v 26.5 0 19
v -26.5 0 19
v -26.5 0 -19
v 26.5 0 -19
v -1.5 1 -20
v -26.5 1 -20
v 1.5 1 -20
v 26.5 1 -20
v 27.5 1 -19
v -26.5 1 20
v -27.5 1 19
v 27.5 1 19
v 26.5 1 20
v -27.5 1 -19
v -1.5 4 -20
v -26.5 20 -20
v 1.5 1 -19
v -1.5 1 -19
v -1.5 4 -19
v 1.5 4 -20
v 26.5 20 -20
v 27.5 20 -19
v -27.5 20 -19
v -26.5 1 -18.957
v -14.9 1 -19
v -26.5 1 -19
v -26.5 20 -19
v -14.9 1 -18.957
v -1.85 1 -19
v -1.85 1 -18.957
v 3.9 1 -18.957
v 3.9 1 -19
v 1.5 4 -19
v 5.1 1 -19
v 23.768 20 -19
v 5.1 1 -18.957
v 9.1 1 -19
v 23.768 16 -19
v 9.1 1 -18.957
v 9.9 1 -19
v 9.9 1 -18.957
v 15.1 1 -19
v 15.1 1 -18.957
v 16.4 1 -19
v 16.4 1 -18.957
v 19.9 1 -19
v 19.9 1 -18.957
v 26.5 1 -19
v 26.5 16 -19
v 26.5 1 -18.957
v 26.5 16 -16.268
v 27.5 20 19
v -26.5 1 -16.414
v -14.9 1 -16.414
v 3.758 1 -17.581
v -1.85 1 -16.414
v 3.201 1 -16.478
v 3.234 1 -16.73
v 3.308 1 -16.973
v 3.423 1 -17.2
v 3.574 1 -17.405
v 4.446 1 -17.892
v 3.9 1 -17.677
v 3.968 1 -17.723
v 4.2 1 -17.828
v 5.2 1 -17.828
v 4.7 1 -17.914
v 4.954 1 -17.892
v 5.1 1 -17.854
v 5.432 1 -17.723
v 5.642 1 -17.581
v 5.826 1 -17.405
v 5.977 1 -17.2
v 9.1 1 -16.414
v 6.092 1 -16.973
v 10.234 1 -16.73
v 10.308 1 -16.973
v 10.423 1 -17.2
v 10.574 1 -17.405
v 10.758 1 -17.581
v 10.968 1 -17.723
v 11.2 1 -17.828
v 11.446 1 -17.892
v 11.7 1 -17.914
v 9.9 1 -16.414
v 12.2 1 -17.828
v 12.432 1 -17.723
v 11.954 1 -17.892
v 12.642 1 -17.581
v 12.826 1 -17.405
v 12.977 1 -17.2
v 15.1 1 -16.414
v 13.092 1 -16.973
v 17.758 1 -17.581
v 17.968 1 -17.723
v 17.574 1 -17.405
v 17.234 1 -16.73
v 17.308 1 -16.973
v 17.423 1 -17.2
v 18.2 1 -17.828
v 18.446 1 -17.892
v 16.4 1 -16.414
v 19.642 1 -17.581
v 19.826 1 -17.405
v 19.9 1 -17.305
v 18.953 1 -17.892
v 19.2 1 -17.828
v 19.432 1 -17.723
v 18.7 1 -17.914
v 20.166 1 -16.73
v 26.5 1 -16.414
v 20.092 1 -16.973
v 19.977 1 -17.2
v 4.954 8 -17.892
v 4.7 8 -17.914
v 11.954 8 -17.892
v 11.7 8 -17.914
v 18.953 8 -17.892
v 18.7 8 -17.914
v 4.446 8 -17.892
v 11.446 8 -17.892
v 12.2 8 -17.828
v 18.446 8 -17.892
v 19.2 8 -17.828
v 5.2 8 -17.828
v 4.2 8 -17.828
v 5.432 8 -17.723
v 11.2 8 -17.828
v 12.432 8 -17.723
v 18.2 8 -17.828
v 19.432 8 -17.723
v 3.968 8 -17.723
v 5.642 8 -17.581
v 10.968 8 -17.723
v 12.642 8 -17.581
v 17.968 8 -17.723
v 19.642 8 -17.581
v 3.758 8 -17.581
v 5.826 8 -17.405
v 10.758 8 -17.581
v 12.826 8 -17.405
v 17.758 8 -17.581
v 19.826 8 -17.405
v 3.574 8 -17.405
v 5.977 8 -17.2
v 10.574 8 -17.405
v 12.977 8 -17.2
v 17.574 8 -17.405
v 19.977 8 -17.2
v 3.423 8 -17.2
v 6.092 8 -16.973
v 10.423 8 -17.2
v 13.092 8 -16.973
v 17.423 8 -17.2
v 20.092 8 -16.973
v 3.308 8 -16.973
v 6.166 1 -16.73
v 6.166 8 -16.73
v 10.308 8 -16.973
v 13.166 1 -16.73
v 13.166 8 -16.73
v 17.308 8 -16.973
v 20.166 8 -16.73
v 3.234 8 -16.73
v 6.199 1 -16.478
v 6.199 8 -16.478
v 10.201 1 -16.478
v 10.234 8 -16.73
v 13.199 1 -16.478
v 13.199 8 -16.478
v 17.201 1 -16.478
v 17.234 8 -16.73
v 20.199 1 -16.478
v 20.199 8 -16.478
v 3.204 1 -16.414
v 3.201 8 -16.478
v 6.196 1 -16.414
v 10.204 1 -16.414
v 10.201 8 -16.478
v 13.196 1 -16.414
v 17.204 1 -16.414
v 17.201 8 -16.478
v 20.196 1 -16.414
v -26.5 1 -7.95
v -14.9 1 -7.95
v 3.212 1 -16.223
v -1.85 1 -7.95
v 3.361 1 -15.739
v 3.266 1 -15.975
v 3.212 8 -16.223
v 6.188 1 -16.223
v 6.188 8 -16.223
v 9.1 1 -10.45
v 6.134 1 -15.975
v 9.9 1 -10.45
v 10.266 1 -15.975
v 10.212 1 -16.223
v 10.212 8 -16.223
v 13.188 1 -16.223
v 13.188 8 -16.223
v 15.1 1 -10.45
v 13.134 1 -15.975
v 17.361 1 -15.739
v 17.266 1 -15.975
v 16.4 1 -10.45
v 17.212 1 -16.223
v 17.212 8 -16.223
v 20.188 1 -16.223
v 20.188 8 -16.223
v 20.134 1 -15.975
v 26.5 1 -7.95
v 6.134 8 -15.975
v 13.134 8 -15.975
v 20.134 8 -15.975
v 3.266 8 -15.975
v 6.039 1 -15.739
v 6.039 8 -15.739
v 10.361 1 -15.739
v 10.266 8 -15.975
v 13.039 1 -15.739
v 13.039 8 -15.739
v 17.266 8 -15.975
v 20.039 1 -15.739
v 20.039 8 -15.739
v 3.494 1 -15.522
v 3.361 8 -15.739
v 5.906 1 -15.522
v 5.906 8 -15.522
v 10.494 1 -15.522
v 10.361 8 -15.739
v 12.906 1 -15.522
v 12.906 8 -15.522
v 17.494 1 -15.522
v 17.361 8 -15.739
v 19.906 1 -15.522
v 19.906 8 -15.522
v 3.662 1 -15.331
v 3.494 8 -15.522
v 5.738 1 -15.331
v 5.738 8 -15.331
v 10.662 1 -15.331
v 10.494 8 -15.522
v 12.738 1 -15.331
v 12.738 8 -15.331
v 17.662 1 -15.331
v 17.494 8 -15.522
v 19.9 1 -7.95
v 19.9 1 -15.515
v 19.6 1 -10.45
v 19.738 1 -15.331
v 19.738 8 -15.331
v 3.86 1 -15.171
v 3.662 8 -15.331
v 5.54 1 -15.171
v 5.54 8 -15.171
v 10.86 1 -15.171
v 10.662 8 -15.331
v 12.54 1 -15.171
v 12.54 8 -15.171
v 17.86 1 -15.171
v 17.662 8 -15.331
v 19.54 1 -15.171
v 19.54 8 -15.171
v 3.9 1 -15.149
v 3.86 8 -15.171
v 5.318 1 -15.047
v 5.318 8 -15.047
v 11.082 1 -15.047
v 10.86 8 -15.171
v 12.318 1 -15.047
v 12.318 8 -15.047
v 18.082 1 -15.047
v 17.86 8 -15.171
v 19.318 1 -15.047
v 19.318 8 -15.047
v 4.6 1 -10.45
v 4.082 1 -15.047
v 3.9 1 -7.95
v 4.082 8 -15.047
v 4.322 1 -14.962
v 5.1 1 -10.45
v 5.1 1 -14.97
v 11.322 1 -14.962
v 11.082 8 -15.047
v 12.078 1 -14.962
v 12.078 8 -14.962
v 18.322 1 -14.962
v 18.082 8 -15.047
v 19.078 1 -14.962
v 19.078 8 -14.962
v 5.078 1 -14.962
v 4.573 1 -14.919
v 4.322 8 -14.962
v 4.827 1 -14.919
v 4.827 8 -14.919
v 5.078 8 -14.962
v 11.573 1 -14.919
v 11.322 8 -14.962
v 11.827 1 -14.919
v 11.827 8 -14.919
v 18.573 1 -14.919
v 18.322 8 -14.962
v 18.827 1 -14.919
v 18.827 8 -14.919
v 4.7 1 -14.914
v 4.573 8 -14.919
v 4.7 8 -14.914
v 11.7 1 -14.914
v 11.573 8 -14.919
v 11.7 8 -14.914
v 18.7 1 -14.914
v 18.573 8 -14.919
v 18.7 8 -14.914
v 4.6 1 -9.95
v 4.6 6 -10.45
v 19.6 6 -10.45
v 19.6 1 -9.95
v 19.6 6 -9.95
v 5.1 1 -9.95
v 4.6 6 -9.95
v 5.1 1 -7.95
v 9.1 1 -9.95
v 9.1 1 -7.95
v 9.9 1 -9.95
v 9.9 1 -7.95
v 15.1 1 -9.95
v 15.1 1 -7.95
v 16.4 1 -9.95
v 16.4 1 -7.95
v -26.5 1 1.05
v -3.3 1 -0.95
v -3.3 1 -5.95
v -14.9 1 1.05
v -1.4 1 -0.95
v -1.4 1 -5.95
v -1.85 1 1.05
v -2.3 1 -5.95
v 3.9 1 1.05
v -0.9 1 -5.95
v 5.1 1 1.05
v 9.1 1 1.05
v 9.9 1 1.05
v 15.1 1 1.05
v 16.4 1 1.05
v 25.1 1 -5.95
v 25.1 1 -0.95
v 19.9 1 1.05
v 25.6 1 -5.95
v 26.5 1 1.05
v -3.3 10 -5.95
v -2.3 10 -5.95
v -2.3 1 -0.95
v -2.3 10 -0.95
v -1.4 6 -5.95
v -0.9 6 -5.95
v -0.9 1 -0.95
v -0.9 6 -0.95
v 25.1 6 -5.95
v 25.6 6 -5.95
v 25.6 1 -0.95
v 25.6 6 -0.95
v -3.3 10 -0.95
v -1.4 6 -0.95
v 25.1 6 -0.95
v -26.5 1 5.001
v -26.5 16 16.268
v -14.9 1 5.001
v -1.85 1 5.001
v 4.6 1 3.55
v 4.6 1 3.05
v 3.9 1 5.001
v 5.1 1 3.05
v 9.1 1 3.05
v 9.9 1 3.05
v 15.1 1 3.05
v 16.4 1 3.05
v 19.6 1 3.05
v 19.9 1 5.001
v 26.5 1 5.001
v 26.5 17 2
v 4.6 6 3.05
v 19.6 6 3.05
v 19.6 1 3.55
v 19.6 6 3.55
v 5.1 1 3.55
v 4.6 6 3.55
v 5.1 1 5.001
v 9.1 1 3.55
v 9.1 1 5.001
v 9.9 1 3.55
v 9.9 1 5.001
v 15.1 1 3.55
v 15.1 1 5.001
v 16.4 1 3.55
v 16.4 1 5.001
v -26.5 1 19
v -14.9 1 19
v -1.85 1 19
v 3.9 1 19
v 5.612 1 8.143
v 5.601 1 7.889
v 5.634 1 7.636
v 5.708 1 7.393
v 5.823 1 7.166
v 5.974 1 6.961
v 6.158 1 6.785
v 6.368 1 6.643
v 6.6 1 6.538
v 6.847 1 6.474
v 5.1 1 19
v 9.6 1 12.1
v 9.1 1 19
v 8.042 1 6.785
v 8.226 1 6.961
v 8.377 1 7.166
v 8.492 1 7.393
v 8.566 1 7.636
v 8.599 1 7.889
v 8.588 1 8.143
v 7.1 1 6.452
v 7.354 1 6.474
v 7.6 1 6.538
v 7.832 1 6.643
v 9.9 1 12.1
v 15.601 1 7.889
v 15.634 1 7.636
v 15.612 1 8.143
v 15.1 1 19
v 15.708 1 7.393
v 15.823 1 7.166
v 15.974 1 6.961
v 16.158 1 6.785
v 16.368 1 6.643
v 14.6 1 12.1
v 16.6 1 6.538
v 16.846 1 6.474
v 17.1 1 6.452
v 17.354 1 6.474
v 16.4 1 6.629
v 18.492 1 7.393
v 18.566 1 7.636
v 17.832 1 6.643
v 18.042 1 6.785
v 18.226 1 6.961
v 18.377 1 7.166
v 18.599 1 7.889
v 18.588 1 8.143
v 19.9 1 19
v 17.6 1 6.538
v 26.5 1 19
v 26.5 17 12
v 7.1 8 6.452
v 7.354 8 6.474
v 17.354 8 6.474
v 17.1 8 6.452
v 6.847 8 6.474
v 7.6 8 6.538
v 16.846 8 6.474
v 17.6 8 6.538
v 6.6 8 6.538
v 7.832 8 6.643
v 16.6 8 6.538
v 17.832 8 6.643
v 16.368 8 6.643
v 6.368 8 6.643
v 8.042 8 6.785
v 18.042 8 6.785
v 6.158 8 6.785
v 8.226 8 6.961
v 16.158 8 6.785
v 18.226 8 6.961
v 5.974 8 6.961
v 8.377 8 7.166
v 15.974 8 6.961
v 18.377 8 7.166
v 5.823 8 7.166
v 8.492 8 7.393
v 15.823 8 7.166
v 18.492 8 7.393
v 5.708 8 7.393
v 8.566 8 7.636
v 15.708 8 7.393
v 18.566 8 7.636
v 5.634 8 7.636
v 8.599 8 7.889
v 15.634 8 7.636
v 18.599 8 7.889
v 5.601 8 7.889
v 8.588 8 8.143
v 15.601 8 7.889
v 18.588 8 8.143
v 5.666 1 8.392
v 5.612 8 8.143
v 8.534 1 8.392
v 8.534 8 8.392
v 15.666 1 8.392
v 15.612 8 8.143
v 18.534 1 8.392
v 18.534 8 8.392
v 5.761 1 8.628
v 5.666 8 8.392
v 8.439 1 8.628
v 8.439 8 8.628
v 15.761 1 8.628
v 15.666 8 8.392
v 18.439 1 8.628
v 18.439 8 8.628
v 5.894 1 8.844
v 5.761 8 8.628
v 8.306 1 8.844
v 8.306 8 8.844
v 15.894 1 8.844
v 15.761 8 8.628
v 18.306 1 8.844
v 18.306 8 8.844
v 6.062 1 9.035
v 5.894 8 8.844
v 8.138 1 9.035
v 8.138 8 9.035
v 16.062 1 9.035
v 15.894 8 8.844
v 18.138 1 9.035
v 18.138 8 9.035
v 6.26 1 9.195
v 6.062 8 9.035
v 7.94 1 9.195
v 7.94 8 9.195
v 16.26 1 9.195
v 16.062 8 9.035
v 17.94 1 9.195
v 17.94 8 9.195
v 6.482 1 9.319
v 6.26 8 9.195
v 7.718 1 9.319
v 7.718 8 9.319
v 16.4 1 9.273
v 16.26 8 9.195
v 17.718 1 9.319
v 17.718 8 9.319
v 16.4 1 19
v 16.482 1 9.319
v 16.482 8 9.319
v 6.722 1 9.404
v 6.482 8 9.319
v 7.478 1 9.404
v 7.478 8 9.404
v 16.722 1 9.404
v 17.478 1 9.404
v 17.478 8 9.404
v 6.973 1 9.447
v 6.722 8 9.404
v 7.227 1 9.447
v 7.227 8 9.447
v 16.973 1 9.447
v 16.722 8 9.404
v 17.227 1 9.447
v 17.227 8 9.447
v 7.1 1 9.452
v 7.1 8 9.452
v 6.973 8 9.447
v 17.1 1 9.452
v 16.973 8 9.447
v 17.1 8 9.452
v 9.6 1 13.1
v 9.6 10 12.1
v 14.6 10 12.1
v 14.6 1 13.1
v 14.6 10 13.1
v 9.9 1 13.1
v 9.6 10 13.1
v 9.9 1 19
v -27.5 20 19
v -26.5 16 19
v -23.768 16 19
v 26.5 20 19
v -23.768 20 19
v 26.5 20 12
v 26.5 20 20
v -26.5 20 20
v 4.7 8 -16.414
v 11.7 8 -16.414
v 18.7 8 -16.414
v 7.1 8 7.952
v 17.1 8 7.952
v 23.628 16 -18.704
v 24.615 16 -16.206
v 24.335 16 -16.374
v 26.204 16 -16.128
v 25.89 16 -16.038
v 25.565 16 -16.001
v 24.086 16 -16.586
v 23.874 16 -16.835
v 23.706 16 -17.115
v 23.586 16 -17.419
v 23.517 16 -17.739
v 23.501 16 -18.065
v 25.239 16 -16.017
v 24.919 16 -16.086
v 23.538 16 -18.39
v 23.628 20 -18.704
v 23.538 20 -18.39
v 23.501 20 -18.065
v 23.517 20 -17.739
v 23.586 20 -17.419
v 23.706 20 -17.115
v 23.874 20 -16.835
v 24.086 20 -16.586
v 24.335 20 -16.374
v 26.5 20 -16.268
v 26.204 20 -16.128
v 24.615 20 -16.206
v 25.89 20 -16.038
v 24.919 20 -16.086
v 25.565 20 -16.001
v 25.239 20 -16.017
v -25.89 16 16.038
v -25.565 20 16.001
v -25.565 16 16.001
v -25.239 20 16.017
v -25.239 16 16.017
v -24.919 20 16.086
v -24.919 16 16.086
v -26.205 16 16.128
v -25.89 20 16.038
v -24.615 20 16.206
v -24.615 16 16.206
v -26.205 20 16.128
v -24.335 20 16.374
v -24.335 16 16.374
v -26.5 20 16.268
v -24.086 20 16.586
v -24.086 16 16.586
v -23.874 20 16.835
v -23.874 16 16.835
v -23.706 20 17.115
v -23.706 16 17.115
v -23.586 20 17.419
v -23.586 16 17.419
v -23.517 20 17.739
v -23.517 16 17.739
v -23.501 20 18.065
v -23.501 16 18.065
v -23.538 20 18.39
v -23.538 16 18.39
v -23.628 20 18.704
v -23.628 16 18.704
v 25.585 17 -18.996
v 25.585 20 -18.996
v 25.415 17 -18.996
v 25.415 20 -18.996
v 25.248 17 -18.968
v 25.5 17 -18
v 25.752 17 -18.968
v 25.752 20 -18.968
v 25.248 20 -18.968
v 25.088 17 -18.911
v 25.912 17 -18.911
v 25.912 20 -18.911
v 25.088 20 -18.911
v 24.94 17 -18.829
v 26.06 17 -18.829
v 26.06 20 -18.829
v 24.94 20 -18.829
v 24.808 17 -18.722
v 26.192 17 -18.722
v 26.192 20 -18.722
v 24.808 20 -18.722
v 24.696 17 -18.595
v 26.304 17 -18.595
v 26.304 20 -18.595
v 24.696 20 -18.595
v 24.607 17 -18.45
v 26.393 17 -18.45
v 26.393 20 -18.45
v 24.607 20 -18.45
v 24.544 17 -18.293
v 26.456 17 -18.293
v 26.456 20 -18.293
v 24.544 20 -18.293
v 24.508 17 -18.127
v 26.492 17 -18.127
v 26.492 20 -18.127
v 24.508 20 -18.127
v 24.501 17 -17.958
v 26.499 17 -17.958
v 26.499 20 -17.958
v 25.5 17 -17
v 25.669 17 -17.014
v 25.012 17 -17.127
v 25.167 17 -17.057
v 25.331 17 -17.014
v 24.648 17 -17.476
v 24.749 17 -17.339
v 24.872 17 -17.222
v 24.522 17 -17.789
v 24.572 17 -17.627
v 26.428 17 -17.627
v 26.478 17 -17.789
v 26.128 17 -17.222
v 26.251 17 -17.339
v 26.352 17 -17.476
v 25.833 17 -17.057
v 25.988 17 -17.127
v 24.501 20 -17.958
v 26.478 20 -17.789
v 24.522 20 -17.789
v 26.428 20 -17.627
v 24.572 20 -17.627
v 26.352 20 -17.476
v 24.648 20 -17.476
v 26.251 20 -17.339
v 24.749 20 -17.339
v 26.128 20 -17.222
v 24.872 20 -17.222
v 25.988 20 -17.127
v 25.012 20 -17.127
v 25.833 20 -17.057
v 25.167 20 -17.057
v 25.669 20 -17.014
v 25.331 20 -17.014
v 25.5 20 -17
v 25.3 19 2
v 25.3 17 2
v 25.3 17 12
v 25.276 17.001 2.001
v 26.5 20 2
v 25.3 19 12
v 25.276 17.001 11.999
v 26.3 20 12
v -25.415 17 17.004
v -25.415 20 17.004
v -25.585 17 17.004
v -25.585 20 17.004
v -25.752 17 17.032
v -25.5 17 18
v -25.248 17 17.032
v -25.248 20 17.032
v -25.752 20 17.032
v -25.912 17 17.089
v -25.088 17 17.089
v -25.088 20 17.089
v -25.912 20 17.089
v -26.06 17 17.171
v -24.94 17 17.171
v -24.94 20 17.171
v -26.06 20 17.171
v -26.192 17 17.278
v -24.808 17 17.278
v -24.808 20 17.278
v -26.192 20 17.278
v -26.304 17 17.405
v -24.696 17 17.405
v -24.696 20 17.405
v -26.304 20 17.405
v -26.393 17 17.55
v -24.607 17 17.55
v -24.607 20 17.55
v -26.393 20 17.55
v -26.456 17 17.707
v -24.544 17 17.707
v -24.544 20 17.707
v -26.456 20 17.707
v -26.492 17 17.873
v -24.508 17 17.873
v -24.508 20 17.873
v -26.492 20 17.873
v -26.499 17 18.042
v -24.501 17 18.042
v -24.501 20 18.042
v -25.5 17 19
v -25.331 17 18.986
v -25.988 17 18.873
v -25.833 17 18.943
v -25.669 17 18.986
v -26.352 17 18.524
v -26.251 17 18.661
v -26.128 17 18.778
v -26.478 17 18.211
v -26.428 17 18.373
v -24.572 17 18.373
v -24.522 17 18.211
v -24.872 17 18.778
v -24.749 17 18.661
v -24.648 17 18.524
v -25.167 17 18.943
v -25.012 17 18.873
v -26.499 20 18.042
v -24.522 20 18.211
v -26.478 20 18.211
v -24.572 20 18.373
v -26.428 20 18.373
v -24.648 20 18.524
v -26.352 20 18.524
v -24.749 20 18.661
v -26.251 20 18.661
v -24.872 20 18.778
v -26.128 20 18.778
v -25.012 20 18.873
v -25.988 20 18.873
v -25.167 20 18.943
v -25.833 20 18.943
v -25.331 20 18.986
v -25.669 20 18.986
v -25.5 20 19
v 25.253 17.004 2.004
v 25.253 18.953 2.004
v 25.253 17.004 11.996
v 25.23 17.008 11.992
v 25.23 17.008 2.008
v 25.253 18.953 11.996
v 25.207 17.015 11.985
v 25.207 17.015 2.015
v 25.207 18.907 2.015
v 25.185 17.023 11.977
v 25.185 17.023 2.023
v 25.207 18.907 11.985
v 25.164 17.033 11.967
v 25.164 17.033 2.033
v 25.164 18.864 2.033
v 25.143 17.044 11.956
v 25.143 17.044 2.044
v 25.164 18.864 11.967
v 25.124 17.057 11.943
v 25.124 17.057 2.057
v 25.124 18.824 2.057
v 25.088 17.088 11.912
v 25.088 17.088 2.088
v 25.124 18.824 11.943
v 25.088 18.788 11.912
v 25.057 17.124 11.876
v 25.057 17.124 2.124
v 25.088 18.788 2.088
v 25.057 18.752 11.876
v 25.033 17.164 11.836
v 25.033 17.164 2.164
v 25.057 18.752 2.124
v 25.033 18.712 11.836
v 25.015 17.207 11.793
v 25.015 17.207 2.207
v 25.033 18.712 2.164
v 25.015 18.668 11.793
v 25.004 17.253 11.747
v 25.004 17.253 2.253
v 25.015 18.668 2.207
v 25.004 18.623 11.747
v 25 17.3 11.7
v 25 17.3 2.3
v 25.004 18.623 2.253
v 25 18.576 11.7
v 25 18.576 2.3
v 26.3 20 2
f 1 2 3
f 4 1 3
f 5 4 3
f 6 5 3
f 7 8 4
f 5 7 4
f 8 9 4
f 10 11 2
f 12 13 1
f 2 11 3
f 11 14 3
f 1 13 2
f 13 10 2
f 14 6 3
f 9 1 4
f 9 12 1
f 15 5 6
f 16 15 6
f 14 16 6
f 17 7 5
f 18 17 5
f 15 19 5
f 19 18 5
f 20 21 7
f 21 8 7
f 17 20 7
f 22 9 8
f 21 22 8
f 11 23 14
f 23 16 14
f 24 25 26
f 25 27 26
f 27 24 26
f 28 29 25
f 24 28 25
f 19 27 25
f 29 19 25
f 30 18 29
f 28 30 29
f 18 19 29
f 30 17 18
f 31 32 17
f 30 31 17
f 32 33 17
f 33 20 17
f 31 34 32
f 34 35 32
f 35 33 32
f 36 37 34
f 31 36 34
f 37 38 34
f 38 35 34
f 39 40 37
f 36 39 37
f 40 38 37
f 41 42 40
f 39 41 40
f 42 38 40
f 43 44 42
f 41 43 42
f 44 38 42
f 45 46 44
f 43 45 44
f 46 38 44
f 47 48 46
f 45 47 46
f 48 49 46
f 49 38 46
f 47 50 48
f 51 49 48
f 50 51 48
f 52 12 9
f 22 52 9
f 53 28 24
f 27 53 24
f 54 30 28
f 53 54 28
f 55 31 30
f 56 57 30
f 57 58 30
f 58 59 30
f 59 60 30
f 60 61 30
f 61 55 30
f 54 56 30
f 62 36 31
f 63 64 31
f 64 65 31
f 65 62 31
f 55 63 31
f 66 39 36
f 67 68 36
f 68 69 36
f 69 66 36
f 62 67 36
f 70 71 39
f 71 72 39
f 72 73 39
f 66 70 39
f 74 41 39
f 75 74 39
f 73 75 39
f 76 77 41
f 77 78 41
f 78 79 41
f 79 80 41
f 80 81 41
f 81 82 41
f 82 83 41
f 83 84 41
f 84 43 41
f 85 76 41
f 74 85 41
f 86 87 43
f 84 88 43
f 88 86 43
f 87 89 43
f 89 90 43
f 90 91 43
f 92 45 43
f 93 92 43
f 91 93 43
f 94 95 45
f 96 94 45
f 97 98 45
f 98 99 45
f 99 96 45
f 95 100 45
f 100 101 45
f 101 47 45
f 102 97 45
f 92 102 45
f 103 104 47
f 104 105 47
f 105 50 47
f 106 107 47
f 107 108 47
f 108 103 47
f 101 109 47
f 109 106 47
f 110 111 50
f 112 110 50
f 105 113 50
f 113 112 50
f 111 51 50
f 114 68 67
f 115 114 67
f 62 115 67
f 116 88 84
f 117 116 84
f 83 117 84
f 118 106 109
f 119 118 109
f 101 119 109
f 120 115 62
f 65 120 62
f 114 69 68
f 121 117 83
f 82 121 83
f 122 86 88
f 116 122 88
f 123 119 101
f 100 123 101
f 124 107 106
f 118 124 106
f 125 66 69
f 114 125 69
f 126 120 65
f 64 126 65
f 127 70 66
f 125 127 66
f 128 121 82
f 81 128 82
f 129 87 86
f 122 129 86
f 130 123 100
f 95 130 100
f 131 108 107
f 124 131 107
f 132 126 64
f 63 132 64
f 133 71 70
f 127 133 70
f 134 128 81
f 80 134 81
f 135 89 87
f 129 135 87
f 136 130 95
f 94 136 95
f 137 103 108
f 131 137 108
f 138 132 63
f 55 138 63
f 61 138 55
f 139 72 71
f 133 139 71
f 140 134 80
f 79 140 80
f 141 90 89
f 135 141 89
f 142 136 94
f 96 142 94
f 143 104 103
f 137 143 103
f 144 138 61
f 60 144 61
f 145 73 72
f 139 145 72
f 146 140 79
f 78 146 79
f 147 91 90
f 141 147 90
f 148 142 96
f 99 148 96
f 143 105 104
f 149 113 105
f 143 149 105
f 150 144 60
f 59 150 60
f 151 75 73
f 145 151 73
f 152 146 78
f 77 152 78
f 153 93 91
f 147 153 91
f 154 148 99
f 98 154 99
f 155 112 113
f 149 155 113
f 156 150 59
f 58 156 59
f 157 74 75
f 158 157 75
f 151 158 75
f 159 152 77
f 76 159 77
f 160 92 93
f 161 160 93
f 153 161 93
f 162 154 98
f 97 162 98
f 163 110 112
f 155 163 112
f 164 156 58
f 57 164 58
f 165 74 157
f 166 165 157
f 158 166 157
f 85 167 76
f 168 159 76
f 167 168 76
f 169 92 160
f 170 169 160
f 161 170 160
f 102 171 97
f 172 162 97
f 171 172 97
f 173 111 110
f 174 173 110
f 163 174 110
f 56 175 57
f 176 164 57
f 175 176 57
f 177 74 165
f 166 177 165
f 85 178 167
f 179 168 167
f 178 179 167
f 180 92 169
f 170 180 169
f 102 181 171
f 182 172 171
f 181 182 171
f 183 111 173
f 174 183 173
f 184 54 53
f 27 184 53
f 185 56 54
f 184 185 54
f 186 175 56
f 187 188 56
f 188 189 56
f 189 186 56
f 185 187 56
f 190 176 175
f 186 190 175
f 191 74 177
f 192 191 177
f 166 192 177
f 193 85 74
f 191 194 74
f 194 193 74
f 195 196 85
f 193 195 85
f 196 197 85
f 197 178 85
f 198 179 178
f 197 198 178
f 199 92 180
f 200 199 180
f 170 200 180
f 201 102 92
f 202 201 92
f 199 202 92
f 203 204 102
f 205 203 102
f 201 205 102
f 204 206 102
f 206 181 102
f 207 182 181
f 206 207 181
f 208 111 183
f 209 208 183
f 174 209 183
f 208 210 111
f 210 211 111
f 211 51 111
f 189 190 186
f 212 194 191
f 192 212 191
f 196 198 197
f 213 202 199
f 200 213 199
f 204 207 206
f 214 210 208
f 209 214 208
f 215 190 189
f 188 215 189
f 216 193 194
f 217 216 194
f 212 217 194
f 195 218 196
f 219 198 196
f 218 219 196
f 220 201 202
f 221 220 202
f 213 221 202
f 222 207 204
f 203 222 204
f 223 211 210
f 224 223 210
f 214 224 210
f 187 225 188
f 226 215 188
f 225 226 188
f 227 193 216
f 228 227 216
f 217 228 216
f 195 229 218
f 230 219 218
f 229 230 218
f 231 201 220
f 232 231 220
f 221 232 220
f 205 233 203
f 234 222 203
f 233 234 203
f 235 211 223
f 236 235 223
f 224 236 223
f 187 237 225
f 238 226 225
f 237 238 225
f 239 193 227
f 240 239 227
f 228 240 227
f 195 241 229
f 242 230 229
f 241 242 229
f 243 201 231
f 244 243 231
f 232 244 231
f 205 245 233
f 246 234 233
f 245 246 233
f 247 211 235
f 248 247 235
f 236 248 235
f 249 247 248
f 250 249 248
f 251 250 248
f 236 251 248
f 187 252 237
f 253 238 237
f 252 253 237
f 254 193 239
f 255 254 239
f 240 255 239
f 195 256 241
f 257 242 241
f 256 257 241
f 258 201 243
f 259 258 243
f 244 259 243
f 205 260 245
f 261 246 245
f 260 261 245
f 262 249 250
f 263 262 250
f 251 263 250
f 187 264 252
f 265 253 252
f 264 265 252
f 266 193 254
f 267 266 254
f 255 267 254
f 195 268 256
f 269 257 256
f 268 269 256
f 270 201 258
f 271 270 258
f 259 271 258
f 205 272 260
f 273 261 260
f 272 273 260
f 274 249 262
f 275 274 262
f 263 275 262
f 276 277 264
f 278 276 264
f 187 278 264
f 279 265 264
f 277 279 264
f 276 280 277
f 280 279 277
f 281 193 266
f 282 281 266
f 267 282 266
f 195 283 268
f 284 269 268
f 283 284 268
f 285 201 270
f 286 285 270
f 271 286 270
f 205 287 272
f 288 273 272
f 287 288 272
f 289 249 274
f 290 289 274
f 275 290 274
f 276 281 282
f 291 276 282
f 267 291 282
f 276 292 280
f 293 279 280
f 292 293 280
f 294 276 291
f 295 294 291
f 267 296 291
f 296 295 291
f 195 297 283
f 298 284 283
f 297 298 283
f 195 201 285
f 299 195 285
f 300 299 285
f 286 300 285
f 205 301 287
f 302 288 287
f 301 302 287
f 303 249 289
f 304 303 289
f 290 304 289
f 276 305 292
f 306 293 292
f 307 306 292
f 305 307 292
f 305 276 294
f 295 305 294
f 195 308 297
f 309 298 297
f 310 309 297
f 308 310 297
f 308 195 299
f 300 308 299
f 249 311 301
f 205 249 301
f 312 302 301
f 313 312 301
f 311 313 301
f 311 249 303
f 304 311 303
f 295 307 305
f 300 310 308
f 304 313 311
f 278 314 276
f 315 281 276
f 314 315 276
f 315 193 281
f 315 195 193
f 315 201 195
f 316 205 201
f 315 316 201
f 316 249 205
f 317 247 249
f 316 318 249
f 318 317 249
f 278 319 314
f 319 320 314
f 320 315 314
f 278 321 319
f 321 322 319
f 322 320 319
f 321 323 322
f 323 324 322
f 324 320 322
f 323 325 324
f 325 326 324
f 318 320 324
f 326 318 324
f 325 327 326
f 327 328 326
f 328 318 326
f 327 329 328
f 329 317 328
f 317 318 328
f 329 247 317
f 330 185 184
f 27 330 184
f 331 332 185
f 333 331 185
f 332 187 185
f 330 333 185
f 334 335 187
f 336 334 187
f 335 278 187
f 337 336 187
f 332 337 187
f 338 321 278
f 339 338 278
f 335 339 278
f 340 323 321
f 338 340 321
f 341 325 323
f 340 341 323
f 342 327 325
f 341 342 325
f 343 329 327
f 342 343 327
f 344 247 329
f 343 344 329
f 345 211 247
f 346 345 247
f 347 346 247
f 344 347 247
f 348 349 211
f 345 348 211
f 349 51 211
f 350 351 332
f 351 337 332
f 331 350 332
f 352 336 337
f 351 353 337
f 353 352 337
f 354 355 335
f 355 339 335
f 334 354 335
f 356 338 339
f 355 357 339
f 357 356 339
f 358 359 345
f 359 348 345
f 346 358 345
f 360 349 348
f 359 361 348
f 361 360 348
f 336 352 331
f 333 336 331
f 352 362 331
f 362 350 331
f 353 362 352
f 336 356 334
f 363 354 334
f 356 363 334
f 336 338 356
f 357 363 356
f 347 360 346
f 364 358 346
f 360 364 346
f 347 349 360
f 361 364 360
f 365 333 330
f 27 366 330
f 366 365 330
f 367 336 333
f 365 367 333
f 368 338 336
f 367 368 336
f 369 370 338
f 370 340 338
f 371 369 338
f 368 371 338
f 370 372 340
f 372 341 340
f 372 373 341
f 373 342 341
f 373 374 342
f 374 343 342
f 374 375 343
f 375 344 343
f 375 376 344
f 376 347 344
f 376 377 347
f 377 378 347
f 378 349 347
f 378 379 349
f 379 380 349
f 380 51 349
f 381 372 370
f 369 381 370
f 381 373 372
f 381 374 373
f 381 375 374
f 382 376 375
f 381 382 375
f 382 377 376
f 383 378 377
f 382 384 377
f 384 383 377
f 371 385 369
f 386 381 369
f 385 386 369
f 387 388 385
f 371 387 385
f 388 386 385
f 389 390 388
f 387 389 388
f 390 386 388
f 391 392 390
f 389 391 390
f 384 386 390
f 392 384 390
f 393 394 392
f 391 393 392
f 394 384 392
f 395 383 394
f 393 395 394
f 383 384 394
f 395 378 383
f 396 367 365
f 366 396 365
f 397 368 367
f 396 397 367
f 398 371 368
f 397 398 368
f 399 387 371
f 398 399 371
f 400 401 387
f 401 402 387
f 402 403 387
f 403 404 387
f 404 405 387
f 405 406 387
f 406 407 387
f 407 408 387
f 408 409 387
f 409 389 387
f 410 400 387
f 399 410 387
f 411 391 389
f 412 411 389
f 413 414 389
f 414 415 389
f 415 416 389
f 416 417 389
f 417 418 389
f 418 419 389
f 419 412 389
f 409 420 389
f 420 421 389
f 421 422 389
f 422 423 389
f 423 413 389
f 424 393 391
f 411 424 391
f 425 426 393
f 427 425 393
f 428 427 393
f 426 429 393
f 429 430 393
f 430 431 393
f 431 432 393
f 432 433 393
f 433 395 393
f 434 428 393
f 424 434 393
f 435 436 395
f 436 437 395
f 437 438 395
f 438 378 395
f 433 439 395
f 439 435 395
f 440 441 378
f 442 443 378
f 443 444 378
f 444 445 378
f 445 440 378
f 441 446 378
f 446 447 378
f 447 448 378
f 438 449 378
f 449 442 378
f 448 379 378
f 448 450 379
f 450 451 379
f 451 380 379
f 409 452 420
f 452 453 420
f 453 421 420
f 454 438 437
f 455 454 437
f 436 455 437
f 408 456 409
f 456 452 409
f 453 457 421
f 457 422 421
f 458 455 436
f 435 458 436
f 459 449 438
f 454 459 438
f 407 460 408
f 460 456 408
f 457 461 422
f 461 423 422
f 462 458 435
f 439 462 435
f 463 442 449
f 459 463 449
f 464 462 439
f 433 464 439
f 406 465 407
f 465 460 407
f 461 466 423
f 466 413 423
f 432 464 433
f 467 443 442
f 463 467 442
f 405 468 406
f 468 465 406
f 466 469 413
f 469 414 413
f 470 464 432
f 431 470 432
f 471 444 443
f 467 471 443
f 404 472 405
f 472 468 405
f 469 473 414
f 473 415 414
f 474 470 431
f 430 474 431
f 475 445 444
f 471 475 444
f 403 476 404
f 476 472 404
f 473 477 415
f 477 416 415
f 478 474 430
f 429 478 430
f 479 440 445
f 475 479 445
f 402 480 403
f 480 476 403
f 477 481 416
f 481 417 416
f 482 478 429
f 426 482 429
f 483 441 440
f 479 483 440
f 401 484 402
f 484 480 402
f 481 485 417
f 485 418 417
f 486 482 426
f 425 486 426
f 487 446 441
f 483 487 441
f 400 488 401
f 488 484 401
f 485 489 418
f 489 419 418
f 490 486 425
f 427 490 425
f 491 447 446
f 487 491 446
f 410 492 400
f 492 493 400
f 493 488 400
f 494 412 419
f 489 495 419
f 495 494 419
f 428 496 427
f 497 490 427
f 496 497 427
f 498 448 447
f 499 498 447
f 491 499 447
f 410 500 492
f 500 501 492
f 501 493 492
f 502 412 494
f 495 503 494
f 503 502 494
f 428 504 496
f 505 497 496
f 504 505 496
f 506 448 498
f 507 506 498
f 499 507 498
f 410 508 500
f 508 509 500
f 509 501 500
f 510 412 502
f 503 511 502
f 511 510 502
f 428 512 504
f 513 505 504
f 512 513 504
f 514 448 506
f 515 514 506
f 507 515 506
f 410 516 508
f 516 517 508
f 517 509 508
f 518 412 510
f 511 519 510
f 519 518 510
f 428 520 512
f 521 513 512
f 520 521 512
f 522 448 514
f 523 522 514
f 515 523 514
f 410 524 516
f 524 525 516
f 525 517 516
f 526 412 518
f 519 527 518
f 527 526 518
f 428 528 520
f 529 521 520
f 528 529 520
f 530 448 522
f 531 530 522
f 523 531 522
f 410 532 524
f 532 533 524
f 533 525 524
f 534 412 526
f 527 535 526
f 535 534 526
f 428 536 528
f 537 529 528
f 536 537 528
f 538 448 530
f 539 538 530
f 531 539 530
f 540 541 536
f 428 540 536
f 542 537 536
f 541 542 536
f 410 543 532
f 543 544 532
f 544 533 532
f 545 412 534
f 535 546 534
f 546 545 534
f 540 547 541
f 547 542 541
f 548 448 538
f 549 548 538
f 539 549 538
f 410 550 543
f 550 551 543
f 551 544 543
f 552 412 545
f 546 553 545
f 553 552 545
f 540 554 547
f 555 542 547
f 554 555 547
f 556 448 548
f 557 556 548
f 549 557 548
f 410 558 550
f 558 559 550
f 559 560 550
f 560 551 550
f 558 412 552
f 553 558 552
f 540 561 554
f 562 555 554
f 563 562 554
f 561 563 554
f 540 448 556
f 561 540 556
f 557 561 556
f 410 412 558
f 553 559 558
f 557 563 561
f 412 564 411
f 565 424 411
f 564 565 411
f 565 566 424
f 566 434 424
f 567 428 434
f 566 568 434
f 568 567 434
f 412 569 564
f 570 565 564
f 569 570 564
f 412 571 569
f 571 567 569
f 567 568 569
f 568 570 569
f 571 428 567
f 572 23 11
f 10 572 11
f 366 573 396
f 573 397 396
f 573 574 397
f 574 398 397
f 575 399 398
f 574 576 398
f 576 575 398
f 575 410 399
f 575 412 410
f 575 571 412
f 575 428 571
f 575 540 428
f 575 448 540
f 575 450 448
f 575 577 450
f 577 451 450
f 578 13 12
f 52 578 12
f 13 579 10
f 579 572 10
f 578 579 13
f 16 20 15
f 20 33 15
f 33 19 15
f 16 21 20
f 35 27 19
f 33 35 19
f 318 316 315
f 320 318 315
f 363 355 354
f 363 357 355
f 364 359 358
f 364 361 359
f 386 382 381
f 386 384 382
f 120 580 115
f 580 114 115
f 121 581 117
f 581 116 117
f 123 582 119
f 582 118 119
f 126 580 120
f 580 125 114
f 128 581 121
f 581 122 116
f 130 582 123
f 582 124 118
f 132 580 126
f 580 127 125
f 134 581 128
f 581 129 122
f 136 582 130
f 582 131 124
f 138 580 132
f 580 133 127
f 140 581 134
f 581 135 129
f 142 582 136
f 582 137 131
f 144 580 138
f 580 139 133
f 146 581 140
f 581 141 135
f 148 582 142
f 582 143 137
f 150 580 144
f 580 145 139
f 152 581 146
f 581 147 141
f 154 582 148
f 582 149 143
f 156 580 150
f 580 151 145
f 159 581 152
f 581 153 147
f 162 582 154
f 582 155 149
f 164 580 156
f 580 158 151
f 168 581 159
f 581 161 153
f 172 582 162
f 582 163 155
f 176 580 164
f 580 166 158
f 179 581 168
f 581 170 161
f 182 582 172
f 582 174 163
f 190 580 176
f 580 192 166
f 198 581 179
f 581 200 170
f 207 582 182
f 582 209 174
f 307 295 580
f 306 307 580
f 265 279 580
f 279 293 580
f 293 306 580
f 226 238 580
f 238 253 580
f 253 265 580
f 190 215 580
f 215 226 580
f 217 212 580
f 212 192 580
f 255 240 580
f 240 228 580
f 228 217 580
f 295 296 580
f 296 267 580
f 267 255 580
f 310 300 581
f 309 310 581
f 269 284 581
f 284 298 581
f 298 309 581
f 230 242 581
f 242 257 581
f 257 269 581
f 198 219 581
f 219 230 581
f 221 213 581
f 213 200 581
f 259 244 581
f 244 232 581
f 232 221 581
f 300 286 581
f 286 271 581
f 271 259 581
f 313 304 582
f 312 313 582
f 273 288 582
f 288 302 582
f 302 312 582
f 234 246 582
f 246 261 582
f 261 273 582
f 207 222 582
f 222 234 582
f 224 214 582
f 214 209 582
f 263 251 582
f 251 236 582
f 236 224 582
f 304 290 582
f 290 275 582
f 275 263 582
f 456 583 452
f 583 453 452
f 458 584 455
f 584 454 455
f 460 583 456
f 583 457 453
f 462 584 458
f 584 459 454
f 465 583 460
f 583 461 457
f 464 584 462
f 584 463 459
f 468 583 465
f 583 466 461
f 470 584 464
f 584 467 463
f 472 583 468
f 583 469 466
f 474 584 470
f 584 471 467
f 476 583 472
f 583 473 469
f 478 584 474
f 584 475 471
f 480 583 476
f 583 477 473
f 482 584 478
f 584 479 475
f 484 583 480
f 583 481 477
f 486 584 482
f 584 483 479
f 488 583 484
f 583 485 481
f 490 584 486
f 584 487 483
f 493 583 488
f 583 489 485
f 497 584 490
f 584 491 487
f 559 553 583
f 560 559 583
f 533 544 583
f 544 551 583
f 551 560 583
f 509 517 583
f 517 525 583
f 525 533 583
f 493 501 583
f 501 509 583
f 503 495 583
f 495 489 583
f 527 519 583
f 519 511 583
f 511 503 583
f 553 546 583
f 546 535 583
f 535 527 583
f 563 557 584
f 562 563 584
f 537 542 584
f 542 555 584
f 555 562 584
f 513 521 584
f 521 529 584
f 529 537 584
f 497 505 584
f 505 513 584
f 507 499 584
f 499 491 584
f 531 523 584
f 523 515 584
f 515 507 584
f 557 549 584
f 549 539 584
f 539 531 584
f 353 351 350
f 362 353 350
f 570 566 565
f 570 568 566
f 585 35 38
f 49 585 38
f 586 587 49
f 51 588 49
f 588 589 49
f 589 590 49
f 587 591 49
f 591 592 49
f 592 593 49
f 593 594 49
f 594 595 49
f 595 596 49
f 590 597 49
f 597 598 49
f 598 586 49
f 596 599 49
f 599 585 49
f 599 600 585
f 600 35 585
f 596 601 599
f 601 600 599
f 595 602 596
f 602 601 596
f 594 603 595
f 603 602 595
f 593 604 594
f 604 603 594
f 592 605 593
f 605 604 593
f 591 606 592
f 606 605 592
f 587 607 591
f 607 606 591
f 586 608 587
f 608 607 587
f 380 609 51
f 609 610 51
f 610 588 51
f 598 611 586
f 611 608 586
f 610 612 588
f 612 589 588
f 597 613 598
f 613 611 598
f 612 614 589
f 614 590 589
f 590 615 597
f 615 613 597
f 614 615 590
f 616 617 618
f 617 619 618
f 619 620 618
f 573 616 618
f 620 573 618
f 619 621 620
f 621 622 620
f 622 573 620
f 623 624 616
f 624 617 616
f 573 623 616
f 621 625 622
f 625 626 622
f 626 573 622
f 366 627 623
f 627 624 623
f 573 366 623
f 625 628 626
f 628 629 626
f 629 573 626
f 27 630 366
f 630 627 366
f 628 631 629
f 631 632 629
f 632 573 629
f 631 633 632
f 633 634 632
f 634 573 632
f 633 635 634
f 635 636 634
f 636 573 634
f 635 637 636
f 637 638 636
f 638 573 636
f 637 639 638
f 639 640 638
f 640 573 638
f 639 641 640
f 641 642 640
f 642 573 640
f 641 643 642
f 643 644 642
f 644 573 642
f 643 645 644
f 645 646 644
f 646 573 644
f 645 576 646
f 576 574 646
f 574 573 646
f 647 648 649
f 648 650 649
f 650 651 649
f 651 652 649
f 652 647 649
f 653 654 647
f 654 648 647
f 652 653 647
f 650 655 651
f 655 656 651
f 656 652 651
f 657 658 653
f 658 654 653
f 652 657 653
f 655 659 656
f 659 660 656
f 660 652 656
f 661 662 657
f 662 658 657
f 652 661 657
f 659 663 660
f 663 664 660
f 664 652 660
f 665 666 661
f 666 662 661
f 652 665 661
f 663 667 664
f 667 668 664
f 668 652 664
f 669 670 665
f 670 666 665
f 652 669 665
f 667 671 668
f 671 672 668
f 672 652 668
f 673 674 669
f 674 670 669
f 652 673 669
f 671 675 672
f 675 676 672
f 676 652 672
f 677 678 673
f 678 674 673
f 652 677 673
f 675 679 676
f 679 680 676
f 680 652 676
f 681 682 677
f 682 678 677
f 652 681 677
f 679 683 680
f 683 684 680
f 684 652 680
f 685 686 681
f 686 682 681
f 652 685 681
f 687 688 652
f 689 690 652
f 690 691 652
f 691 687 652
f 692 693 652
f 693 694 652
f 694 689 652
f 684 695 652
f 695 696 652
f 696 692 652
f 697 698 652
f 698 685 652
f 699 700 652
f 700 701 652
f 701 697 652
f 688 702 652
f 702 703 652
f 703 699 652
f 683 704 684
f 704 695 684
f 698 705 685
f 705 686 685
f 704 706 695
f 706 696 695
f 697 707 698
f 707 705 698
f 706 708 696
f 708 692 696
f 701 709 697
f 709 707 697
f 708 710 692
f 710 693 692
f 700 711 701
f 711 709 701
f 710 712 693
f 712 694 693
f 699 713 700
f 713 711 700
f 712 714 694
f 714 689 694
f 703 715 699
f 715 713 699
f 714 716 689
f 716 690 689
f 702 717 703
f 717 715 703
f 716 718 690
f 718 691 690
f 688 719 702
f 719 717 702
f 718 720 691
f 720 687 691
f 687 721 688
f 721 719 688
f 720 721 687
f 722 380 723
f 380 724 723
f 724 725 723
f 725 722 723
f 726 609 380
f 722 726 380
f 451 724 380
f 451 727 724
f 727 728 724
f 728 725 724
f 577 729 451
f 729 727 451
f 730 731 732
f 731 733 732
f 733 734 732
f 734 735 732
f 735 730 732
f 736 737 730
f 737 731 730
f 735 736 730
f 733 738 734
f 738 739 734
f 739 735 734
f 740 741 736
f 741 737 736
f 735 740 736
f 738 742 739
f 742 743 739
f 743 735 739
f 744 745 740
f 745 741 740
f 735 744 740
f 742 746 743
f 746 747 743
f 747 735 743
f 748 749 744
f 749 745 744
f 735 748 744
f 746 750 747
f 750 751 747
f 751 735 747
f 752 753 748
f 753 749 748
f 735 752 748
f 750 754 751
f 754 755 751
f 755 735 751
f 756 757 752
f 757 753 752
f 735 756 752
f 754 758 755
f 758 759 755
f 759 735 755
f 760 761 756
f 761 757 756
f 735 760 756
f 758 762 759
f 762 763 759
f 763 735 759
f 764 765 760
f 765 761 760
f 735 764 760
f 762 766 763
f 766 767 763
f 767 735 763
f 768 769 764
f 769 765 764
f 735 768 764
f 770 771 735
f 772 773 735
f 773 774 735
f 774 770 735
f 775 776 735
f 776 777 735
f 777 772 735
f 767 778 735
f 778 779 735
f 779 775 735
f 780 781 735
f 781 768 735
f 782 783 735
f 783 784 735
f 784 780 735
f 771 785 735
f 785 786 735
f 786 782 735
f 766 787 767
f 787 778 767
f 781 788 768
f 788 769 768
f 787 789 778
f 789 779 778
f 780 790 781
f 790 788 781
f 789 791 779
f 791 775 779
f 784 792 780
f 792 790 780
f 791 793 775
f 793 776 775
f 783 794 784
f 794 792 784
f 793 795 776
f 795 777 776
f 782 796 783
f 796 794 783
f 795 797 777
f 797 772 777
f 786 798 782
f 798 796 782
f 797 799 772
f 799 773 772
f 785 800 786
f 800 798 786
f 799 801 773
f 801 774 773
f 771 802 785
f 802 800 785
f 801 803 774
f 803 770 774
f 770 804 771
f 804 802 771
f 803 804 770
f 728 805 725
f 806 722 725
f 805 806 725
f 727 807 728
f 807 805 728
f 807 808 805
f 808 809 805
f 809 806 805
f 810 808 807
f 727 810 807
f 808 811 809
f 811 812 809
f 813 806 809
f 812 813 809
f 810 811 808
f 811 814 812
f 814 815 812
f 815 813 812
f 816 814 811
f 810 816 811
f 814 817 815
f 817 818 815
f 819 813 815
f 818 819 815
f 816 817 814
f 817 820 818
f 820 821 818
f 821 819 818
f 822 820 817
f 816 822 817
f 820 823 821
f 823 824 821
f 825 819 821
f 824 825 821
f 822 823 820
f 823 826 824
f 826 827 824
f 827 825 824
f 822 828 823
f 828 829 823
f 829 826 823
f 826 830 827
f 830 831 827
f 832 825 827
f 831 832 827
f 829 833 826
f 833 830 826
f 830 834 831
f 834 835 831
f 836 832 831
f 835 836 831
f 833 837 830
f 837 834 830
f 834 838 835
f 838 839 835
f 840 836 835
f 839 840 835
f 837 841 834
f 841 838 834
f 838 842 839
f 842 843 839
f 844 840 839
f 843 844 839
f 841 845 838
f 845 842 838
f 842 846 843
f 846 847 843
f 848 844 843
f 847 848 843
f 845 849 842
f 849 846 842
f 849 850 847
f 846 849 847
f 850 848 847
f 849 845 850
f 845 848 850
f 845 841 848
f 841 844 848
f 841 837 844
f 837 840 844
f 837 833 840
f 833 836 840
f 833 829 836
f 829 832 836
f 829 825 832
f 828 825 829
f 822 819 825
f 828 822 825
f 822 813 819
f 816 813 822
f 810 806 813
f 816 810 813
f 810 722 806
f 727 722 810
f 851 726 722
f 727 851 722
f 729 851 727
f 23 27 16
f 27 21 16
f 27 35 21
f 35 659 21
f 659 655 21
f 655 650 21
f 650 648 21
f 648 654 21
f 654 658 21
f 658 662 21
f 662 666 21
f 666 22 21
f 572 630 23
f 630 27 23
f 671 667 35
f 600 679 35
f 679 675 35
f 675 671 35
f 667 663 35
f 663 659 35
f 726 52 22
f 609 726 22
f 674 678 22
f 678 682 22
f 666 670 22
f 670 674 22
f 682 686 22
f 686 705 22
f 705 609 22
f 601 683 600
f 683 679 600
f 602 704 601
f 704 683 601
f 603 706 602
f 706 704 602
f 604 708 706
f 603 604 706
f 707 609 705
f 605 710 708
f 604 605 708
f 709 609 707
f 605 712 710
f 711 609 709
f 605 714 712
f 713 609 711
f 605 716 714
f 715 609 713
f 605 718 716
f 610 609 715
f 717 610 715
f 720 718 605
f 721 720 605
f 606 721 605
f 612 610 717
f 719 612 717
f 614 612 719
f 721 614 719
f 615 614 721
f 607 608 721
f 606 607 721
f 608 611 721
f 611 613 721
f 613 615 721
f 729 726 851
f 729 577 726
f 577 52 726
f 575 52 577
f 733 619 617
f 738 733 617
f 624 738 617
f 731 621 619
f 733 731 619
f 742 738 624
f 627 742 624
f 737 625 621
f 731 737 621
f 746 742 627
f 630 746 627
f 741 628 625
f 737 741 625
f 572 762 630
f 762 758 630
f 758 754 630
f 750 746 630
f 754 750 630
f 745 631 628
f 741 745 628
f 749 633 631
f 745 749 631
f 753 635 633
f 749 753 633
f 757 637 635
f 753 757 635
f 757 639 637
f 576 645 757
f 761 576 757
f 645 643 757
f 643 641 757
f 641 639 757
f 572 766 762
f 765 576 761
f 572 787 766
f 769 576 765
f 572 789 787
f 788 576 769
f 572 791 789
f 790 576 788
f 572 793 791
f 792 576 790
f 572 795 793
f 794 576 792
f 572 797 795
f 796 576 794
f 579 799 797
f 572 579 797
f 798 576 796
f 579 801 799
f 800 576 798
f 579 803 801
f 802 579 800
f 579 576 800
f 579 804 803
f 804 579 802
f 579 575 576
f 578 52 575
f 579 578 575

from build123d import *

# Parameters (mm, degrees)
SKETCH_1_W          = 55
SKETCH_1_H          = 40
EXTRUDE_1_DEPTH     = 20
SKETCH_2_R          = 1
CUT_EXTRUDE_2_DEPTH = 3
SHELL_START         = 1
SHELL_1_DEPTH       = 19
SHELL_1_2_DEPTH     = 15
CHAMFER_2_SIZE      = 1
SKETCH_8_W          = 3
SKETCH_8_H          = 3
CUT_EXTRUDE_5_DEPTH = 10
SKETCH_10_W         = 1.5
SKETCH_10_H         = 10
EXTRUDE_2_DEPTH     = 3
SKETCH_11_W         = 0.5
SKETCH_11_H         = 5
SKETCH_11_W_2       = 15
SKETCH_11_H_2       = 0.5
EXTRUDE_6_DEPTH     = 5
SKETCH_11_7_R       = 1.5
EXTRUDE_7_DEPTH     = 7
SKETCH_11_8_W       = 1
SKETCH_11_8_H       = 5
SKETCH_11_8_W_2     = 5
SKETCH_11_8_H_2     = 1
EXTRUDE_8_DEPTH     = 9
CUT_EXTRUDE_6_DEPTH = 10
FILLET_1_R          = 0.3


# Read off the part's stored shape, not the designer's step: 抽壳1
with BuildPart() as part:
    # 草图1 → 凸台-拉伸1 (new body)
    with BuildSketch(Plane(origin=(0, 0, 0), x_dir=(1, 0, 0), z_dir=(0, 1, 0))):
        Rectangle(SKETCH_1_W, SKETCH_1_H)
    extrude(amount=EXTRUDE_1_DEPTH)

    # 草图2 → 切除-拉伸2 (cut)
    with BuildSketch(Plane(origin=(0, 20, 0), x_dir=(1, 0, 0), z_dir=(0, 1, 0))):
        with Locations(Location((-25.5, -18, 0), (0, 0, 270))):
            Circle(SKETCH_2_R)
        with Locations(Location((25.5, 18, 0), (0, 0, 270))):
            Circle(SKETCH_2_R)
    extrude(amount=-CUT_EXTRUDE_2_DEPTH, mode=Mode.SUBTRACT)

    # 抽壳1 outline → 抽壳1 (cut)
    with BuildSketch(Plane(origin=(0, 0, 0), x_dir=(1, 0, 0), z_dir=(0, 1, 0)).offset(SHELL_START)):
        with BuildLine():
            ThreePointArc((26.5, 16.267949192), (24.085786438, 16.585786438), (23.767949192, 19))
            Line((23.767949192, 19), (-26.5, 19))
            Line((-26.5, 19), (-26.5, -16.267949192))
            ThreePointArc((-26.5, -16.267949192), (-24.085786438, -16.585786438), (-23.767949192, -19))
            Line((-23.767949192, -19), (26.5, -19))
            Line((26.5, -19), (26.5, 16.267949192))
        make_face()
    extrude(amount=SHELL_1_DEPTH, mode=Mode.SUBTRACT)

    # Shell 1 2 outline → Shell 1 2 (cut)
    with BuildSketch(Plane(origin=(0, 0, 0), x_dir=(1, 0, 0), z_dir=(0, 1, 0)).offset(SHELL_START)):
        with BuildLine():
            Line((26.5, 16.267949192), (26.5, 19))
            Line((26.5, 19), (23.767949192, 19))
            ThreePointArc((23.767949192, 19), (24.085786438, 16.585786438), (26.5, 16.267949192))
        make_face()
        with BuildLine():
            ThreePointArc((-23.767949192, -19), (-24.085786438, -16.585786438), (-26.5, -16.267949192))
            Line((-26.5, -16.267949192), (-26.5, -19))
            Line((-26.5, -19), (-23.767949192, -19))
        make_face()
    extrude(amount=SHELL_1_2_DEPTH, mode=Mode.SUBTRACT)

    # 倒角2
    chamfer_2_edges = [part.edges().sort_by_distance(p)[0] for p in [
        (0, 0, -20),
        (27.5, 0, 0),
        (0, 0, 20),
        (-27.5, 0, 0),
        (-27.5, 10, -20),
        (27.5, 10, -20),
        (27.5, 10, 20),
        (-27.5, 10, 20),
    ]]
    chamfer(chamfer_2_edges, length=CHAMFER_2_SIZE)

    # 草图8 → 切除-拉伸5 (cut)
    with BuildSketch(Plane(origin=(0, 0, -20), x_dir=(-1, 0, 0), z_dir=(0, 0, -1))):
        with Locations((0, 2.5)):
            Rectangle(SKETCH_8_W, SKETCH_8_H)
    extrude(amount=-CUT_EXTRUDE_5_DEPTH, mode=Mode.SUBTRACT)

    # 草图10 → 凸台-拉伸2 (add)
    with BuildSketch(Plane(origin=(0, 20, 0), x_dir=(1, 0, 0), z_dir=(0, 1, 0))):
        with Locations((25.75, -7)):
            Rectangle(SKETCH_10_W, SKETCH_10_H)
    extrude(amount=-EXTRUDE_2_DEPTH)

    # 草图11 → 凸台-拉伸6 (add)
    with BuildSketch(Plane(origin=(0, 1, 0), x_dir=(1, 0, 0), z_dir=(0, 1, 0))):
        with Locations((25.35, 3.45)):
            Rectangle(SKETCH_11_W, SKETCH_11_H)
        with Locations((12.1, 10.2)):
            Rectangle(SKETCH_11_W_2, SKETCH_11_H_2)
        with Locations((12.1, -3.3)):
            Rectangle(SKETCH_11_W_2, SKETCH_11_H_2)
        with Locations((-1.15, 3.45)):
            Rectangle(SKETCH_11_W, SKETCH_11_H)
    extrude(amount=EXTRUDE_6_DEPTH)

    # 草图11<7> → 凸台-拉伸7 (add)
    with BuildSketch(Plane(origin=(0, 1, 0), x_dir=(1, 0, 0), z_dir=(0, 1, 0))):
        with Locations(Location((4.7, 16.413896805, 0), (0, 0, 270))):
            Circle(SKETCH_11_7_R)
        with Locations(Location((11.7, 16.413896805, 0), (0, 0, 270))):
            Circle(SKETCH_11_7_R)
        with Locations(Location((18.7, 16.413896805, 0), (0, 0, 270))):
            Circle(SKETCH_11_7_R)
        with Locations(Location((17.1, -7.952490826, 0), (0, 0, 270))):
            Circle(SKETCH_11_7_R)
        with Locations(Location((7.1, -7.952490826, 0), (0, 0, 270))):
            Circle(SKETCH_11_7_R)
    extrude(amount=EXTRUDE_7_DEPTH)

    # 草图11<8> → 凸台-拉伸8 (add)
    with BuildSketch(Plane(origin=(0, 1, 0), x_dir=(1, 0, 0), z_dir=(0, 1, 0))):
        with Locations((-2.8, 3.45)):
            Rectangle(SKETCH_11_8_W, SKETCH_11_8_H)
        with Locations((12.1, -12.6)):
            Rectangle(SKETCH_11_8_W_2, SKETCH_11_8_H_2)
    extrude(amount=EXTRUDE_8_DEPTH)

    # 草图12 → 切除-拉伸6 (cut)
    with BuildSketch(Plane.XY.offset(12)):
        Polygon((26.3, 20), (25, 18.7), (25, 20), align=None)
    extrude(amount=-CUT_EXTRUDE_6_DEPTH, mode=Mode.SUBTRACT)

    # 圆角1
    fillet_1_edges = [part.edges().sort_by_distance(p)[0] for p in [
        (25, 18.7, 7),
        (25, 17, 7),
        (25, 17.85, 12),
        (25, 17.85, 2),
    ]]
    fillet(fillet_1_edges, radius=FILLET_1_R)


solid = part.part
